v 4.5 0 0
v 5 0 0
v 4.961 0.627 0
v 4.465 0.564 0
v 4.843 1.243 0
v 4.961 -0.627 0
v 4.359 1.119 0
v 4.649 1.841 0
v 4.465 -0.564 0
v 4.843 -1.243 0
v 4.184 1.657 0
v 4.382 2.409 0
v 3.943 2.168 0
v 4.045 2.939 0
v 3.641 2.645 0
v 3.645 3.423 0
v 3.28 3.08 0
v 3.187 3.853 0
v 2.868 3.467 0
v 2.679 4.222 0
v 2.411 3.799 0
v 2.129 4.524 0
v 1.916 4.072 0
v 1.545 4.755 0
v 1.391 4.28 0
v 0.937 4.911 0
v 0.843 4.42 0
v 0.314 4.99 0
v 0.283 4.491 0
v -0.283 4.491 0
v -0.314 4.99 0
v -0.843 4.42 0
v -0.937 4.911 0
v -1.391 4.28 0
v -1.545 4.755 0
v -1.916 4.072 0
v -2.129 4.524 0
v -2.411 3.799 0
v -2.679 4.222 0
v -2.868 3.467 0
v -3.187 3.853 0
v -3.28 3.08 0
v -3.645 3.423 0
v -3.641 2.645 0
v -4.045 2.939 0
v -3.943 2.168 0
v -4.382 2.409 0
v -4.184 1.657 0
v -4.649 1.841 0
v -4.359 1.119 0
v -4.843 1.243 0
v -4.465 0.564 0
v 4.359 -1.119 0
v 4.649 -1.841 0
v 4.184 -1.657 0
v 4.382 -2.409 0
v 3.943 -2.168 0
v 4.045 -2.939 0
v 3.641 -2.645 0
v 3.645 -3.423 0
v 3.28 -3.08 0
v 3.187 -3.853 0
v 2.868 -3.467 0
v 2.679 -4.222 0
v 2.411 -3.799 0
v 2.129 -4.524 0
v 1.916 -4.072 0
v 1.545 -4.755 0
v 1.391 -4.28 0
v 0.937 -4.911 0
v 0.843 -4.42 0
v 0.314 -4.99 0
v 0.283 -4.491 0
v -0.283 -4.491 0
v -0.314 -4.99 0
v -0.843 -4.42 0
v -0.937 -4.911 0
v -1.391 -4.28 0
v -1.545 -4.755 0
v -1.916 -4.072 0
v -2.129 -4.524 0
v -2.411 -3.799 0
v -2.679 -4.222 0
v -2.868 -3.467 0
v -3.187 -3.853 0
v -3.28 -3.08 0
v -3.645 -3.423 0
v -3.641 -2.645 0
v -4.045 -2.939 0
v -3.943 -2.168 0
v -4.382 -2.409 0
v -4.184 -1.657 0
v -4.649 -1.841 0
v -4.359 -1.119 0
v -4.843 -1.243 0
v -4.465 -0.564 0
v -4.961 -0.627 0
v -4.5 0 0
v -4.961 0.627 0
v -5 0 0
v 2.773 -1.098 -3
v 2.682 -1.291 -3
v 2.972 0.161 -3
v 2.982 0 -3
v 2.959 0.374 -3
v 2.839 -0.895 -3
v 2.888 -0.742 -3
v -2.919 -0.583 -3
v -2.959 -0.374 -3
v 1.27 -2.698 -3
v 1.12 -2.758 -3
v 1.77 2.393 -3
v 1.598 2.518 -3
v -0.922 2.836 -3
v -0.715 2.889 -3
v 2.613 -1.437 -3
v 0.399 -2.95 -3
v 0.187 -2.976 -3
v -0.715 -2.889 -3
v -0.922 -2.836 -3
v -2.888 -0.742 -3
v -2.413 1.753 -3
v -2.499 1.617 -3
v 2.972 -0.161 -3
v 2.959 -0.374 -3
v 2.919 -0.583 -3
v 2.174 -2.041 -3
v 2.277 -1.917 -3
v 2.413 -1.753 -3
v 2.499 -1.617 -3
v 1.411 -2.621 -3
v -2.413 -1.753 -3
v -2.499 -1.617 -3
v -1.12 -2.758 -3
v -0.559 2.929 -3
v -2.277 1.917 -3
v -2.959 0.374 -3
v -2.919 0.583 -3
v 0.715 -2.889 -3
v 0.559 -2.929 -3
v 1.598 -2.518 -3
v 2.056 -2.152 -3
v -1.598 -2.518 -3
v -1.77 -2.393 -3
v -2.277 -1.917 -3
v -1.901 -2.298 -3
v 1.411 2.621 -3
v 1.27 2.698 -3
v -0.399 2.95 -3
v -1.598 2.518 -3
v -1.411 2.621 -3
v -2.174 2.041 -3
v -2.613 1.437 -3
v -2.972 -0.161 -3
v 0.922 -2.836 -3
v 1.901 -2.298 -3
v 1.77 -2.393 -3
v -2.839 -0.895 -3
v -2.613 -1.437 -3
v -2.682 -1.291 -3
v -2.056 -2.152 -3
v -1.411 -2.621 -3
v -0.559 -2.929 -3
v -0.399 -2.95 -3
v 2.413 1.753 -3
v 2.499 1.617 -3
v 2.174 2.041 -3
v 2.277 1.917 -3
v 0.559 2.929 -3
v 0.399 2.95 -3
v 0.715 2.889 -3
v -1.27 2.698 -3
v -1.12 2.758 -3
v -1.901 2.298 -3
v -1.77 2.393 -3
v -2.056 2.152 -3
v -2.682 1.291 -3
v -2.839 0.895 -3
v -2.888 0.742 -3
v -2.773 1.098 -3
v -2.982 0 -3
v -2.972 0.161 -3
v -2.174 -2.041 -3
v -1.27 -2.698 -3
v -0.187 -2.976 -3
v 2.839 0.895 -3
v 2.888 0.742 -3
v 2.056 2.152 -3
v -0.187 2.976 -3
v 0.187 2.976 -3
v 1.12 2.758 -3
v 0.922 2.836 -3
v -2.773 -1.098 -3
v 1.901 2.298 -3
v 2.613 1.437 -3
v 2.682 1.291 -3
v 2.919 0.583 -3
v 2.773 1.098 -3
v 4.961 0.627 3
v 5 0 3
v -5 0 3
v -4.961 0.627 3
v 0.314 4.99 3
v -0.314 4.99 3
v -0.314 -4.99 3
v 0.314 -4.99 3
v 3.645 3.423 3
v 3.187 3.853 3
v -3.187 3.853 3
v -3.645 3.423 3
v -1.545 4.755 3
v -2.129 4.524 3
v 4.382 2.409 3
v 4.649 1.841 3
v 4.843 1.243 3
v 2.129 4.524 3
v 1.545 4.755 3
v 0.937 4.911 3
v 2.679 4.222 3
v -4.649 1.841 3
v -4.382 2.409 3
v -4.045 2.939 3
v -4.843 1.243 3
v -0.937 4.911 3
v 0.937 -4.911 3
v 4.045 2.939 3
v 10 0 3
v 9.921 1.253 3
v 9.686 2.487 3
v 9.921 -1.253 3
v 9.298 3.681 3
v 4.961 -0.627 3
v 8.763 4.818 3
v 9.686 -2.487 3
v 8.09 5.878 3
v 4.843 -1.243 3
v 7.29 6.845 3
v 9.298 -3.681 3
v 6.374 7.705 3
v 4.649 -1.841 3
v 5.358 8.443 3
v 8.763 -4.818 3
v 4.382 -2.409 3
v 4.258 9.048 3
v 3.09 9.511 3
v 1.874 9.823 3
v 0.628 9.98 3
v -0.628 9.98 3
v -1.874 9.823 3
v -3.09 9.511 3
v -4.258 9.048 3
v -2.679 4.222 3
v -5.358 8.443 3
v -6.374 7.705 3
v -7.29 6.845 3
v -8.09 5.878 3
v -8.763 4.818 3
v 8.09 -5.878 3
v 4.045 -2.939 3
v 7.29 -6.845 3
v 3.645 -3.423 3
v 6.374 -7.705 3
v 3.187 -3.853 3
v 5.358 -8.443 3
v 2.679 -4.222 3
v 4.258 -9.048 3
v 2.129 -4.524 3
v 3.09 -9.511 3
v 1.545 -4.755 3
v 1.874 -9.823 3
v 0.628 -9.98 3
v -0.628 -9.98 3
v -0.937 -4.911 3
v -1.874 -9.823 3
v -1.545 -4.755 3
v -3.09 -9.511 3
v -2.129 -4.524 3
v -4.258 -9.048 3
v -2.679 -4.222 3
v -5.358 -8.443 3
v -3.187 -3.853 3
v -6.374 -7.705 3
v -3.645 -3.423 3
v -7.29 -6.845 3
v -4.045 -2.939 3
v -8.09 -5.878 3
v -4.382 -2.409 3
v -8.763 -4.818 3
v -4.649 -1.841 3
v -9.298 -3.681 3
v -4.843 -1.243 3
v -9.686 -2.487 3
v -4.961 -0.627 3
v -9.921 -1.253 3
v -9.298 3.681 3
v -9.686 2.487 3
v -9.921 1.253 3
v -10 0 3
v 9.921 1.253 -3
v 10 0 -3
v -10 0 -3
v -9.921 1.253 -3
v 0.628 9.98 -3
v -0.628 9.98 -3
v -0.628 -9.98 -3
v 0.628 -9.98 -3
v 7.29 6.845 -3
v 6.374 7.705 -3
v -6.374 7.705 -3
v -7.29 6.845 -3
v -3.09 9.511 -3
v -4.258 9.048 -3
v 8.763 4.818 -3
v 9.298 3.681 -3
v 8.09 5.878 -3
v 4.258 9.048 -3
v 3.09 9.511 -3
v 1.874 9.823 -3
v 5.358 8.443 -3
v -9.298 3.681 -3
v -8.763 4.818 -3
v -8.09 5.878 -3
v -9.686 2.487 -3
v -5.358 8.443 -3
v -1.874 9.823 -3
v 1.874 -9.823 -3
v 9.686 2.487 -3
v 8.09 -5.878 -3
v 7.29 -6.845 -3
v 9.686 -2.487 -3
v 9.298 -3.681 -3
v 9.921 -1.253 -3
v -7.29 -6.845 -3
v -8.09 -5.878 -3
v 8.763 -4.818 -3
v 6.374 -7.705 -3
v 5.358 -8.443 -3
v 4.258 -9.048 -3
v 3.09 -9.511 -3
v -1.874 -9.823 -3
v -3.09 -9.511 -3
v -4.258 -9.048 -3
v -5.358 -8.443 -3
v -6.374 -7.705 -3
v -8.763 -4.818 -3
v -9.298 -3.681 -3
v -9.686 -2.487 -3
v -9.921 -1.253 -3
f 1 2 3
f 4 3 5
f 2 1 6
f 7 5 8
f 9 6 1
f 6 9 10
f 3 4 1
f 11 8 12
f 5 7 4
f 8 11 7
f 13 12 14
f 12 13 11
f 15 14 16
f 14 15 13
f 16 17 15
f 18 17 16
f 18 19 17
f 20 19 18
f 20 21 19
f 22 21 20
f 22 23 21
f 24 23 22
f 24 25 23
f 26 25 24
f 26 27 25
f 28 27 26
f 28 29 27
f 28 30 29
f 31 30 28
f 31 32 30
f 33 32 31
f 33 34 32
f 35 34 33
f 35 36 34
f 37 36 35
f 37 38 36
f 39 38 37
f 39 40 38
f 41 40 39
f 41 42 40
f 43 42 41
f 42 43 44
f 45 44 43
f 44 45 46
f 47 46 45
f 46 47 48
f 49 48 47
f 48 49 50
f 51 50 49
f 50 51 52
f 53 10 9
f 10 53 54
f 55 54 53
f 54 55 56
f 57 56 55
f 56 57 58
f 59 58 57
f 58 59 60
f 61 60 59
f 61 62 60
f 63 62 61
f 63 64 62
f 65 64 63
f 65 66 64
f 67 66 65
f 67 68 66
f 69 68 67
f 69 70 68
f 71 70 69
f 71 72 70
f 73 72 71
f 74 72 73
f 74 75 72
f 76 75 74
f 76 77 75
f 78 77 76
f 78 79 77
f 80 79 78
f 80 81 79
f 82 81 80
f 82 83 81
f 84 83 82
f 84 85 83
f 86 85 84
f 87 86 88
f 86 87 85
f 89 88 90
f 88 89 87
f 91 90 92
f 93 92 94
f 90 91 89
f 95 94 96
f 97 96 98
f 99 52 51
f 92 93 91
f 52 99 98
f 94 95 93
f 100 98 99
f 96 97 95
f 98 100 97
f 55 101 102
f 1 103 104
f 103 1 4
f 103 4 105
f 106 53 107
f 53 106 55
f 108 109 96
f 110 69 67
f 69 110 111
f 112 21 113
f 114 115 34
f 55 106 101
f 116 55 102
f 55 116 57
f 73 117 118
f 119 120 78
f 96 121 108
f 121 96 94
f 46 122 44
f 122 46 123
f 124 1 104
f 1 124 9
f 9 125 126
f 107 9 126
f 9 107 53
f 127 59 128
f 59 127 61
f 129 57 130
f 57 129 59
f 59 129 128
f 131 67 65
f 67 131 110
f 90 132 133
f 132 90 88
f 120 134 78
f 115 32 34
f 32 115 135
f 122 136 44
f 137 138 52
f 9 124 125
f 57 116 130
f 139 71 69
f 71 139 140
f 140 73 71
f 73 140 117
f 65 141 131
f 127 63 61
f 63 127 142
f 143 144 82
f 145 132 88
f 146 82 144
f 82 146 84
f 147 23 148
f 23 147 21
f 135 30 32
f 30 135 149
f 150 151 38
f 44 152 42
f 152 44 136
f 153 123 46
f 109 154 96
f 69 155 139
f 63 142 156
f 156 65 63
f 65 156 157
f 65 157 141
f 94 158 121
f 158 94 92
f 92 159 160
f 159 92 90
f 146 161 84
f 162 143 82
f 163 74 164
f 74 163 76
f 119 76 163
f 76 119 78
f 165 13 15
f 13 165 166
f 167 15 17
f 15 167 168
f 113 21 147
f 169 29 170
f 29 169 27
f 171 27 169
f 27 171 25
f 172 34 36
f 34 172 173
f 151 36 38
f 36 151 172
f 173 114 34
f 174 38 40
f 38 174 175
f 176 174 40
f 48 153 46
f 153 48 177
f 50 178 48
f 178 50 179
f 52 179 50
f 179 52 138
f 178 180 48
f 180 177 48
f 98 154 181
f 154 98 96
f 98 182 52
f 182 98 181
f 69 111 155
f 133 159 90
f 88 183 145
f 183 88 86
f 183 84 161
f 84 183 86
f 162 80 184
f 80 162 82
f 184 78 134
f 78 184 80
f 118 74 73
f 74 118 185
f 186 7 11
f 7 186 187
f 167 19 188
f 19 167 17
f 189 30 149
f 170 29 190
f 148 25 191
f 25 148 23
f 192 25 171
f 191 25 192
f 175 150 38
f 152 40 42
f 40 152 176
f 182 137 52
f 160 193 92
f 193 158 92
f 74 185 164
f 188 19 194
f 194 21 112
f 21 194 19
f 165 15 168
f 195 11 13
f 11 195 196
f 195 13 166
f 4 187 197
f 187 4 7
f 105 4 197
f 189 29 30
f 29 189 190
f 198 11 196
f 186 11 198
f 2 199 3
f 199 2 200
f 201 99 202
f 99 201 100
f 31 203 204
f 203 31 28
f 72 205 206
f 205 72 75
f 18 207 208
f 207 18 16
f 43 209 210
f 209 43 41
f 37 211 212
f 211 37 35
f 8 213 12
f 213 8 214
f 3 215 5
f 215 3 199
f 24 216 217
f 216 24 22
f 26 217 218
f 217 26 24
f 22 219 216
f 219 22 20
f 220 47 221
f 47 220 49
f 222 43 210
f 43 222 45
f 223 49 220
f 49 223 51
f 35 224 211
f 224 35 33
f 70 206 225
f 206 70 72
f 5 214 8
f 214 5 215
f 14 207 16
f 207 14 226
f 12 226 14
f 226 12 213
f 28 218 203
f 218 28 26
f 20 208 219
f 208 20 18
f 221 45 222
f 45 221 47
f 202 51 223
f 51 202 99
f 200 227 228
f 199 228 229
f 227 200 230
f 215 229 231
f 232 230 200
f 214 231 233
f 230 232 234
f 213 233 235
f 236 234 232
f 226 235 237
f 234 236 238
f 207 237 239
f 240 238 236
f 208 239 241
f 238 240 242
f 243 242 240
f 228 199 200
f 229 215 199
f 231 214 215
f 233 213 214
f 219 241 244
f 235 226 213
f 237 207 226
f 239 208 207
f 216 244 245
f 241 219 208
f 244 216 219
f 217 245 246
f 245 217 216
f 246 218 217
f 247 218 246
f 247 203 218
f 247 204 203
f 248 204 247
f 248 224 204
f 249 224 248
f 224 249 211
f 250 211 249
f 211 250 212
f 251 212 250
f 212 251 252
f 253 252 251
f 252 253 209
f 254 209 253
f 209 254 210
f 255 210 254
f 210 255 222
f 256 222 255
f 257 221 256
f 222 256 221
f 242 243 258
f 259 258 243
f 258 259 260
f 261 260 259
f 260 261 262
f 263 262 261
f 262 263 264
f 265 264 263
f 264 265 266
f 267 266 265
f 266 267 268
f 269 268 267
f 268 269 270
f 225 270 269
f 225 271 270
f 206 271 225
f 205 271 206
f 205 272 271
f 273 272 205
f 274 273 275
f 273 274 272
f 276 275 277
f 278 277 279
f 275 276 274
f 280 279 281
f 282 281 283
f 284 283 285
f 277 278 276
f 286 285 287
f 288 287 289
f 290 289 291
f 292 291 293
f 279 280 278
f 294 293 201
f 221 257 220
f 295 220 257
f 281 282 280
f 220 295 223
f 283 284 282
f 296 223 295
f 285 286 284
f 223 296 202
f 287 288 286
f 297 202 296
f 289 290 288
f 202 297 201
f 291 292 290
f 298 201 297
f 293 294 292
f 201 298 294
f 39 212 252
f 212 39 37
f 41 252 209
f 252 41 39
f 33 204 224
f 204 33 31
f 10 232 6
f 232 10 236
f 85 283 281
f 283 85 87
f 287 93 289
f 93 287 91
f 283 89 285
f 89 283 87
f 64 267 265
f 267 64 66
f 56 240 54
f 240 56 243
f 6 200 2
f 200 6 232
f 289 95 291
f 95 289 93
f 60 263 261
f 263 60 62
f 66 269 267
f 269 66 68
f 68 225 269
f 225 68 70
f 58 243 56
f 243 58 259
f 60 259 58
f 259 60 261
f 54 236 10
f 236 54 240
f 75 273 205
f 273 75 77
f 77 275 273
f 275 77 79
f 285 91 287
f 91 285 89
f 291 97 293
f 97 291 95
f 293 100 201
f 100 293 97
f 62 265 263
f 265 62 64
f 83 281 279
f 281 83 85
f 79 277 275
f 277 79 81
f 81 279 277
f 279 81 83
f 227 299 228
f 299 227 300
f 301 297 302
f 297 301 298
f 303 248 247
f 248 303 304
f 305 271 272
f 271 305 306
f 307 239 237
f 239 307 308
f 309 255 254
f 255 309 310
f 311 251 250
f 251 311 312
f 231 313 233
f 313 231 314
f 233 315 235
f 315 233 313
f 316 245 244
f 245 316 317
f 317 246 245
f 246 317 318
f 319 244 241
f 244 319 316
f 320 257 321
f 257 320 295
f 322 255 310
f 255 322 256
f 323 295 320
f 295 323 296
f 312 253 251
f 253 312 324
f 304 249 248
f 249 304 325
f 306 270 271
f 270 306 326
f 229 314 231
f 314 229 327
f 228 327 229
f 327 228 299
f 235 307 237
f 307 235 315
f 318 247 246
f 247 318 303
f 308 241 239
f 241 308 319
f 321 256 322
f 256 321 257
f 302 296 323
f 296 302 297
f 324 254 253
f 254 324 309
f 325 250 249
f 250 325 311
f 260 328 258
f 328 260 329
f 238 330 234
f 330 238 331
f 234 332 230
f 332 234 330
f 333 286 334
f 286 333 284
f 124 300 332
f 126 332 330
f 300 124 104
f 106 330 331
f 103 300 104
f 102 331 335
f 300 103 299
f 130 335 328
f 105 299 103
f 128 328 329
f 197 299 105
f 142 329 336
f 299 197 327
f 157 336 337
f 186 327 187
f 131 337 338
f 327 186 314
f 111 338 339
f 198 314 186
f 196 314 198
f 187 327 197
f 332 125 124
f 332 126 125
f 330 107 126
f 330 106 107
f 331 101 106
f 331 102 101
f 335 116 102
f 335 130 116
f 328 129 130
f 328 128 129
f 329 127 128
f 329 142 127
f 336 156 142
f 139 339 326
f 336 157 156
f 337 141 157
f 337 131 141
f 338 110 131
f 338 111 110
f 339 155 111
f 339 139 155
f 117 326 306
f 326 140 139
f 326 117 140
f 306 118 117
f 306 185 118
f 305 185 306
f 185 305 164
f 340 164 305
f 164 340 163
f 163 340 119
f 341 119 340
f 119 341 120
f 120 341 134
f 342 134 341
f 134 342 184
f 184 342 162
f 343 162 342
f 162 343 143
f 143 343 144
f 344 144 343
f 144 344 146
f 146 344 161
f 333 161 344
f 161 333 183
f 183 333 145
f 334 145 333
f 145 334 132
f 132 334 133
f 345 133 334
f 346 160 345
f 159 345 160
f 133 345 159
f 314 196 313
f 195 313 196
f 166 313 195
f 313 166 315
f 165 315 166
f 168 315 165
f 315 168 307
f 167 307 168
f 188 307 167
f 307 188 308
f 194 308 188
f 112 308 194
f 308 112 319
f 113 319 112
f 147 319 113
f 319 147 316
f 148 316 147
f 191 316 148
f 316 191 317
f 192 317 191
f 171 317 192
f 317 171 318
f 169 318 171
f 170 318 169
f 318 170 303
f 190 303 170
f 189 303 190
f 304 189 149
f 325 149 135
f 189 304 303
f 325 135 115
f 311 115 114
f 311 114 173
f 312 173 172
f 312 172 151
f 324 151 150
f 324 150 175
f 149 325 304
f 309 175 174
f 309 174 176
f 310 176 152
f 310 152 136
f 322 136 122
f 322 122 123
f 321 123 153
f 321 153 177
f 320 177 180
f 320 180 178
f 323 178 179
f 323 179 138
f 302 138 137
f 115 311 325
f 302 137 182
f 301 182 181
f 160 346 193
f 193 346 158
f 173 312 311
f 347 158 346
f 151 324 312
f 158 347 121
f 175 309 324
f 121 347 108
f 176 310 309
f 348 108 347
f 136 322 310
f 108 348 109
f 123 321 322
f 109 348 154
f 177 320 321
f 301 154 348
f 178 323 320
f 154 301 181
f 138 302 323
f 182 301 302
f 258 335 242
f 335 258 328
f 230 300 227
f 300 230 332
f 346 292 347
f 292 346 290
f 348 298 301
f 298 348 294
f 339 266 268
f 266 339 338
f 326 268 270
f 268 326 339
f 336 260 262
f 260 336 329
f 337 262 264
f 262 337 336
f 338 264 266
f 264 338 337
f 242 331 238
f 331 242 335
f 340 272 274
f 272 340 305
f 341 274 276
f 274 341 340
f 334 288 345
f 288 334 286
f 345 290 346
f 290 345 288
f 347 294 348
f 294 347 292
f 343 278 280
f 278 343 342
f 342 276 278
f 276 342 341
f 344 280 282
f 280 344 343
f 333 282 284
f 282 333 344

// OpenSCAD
$fn = 50;

difference() {
	union() {
		translate(v = [0, 0, -3.0]) {
			cylinder(h = 6, r = 10.0);
		}
	}
	union() {
		translate(v = [0, 0, 0]) {
			rotate(a = [0, 0, 0]) {
				difference() {
					union() {
						translate(v = [0, 0, -6.0]) {
							cylinder(h = 6, r = 2.25);
						}
						translate(v = [0, 0, -4.2]) {
							cylinder(h = 4.2, r1 = 2.375, r2 = 4.5);
						}
						translate(v = [0, 0, -6.0]) {
							cylinder(h = 6, r = 2.375);
						}
						translate(v = [0, 0, -6.0]) {
							cylinder(h = 6, r = 2.25);
						}
					}
					union();
				}
			}
		}
		#cylinder(h = 3, r = 5.0);
	}
}
